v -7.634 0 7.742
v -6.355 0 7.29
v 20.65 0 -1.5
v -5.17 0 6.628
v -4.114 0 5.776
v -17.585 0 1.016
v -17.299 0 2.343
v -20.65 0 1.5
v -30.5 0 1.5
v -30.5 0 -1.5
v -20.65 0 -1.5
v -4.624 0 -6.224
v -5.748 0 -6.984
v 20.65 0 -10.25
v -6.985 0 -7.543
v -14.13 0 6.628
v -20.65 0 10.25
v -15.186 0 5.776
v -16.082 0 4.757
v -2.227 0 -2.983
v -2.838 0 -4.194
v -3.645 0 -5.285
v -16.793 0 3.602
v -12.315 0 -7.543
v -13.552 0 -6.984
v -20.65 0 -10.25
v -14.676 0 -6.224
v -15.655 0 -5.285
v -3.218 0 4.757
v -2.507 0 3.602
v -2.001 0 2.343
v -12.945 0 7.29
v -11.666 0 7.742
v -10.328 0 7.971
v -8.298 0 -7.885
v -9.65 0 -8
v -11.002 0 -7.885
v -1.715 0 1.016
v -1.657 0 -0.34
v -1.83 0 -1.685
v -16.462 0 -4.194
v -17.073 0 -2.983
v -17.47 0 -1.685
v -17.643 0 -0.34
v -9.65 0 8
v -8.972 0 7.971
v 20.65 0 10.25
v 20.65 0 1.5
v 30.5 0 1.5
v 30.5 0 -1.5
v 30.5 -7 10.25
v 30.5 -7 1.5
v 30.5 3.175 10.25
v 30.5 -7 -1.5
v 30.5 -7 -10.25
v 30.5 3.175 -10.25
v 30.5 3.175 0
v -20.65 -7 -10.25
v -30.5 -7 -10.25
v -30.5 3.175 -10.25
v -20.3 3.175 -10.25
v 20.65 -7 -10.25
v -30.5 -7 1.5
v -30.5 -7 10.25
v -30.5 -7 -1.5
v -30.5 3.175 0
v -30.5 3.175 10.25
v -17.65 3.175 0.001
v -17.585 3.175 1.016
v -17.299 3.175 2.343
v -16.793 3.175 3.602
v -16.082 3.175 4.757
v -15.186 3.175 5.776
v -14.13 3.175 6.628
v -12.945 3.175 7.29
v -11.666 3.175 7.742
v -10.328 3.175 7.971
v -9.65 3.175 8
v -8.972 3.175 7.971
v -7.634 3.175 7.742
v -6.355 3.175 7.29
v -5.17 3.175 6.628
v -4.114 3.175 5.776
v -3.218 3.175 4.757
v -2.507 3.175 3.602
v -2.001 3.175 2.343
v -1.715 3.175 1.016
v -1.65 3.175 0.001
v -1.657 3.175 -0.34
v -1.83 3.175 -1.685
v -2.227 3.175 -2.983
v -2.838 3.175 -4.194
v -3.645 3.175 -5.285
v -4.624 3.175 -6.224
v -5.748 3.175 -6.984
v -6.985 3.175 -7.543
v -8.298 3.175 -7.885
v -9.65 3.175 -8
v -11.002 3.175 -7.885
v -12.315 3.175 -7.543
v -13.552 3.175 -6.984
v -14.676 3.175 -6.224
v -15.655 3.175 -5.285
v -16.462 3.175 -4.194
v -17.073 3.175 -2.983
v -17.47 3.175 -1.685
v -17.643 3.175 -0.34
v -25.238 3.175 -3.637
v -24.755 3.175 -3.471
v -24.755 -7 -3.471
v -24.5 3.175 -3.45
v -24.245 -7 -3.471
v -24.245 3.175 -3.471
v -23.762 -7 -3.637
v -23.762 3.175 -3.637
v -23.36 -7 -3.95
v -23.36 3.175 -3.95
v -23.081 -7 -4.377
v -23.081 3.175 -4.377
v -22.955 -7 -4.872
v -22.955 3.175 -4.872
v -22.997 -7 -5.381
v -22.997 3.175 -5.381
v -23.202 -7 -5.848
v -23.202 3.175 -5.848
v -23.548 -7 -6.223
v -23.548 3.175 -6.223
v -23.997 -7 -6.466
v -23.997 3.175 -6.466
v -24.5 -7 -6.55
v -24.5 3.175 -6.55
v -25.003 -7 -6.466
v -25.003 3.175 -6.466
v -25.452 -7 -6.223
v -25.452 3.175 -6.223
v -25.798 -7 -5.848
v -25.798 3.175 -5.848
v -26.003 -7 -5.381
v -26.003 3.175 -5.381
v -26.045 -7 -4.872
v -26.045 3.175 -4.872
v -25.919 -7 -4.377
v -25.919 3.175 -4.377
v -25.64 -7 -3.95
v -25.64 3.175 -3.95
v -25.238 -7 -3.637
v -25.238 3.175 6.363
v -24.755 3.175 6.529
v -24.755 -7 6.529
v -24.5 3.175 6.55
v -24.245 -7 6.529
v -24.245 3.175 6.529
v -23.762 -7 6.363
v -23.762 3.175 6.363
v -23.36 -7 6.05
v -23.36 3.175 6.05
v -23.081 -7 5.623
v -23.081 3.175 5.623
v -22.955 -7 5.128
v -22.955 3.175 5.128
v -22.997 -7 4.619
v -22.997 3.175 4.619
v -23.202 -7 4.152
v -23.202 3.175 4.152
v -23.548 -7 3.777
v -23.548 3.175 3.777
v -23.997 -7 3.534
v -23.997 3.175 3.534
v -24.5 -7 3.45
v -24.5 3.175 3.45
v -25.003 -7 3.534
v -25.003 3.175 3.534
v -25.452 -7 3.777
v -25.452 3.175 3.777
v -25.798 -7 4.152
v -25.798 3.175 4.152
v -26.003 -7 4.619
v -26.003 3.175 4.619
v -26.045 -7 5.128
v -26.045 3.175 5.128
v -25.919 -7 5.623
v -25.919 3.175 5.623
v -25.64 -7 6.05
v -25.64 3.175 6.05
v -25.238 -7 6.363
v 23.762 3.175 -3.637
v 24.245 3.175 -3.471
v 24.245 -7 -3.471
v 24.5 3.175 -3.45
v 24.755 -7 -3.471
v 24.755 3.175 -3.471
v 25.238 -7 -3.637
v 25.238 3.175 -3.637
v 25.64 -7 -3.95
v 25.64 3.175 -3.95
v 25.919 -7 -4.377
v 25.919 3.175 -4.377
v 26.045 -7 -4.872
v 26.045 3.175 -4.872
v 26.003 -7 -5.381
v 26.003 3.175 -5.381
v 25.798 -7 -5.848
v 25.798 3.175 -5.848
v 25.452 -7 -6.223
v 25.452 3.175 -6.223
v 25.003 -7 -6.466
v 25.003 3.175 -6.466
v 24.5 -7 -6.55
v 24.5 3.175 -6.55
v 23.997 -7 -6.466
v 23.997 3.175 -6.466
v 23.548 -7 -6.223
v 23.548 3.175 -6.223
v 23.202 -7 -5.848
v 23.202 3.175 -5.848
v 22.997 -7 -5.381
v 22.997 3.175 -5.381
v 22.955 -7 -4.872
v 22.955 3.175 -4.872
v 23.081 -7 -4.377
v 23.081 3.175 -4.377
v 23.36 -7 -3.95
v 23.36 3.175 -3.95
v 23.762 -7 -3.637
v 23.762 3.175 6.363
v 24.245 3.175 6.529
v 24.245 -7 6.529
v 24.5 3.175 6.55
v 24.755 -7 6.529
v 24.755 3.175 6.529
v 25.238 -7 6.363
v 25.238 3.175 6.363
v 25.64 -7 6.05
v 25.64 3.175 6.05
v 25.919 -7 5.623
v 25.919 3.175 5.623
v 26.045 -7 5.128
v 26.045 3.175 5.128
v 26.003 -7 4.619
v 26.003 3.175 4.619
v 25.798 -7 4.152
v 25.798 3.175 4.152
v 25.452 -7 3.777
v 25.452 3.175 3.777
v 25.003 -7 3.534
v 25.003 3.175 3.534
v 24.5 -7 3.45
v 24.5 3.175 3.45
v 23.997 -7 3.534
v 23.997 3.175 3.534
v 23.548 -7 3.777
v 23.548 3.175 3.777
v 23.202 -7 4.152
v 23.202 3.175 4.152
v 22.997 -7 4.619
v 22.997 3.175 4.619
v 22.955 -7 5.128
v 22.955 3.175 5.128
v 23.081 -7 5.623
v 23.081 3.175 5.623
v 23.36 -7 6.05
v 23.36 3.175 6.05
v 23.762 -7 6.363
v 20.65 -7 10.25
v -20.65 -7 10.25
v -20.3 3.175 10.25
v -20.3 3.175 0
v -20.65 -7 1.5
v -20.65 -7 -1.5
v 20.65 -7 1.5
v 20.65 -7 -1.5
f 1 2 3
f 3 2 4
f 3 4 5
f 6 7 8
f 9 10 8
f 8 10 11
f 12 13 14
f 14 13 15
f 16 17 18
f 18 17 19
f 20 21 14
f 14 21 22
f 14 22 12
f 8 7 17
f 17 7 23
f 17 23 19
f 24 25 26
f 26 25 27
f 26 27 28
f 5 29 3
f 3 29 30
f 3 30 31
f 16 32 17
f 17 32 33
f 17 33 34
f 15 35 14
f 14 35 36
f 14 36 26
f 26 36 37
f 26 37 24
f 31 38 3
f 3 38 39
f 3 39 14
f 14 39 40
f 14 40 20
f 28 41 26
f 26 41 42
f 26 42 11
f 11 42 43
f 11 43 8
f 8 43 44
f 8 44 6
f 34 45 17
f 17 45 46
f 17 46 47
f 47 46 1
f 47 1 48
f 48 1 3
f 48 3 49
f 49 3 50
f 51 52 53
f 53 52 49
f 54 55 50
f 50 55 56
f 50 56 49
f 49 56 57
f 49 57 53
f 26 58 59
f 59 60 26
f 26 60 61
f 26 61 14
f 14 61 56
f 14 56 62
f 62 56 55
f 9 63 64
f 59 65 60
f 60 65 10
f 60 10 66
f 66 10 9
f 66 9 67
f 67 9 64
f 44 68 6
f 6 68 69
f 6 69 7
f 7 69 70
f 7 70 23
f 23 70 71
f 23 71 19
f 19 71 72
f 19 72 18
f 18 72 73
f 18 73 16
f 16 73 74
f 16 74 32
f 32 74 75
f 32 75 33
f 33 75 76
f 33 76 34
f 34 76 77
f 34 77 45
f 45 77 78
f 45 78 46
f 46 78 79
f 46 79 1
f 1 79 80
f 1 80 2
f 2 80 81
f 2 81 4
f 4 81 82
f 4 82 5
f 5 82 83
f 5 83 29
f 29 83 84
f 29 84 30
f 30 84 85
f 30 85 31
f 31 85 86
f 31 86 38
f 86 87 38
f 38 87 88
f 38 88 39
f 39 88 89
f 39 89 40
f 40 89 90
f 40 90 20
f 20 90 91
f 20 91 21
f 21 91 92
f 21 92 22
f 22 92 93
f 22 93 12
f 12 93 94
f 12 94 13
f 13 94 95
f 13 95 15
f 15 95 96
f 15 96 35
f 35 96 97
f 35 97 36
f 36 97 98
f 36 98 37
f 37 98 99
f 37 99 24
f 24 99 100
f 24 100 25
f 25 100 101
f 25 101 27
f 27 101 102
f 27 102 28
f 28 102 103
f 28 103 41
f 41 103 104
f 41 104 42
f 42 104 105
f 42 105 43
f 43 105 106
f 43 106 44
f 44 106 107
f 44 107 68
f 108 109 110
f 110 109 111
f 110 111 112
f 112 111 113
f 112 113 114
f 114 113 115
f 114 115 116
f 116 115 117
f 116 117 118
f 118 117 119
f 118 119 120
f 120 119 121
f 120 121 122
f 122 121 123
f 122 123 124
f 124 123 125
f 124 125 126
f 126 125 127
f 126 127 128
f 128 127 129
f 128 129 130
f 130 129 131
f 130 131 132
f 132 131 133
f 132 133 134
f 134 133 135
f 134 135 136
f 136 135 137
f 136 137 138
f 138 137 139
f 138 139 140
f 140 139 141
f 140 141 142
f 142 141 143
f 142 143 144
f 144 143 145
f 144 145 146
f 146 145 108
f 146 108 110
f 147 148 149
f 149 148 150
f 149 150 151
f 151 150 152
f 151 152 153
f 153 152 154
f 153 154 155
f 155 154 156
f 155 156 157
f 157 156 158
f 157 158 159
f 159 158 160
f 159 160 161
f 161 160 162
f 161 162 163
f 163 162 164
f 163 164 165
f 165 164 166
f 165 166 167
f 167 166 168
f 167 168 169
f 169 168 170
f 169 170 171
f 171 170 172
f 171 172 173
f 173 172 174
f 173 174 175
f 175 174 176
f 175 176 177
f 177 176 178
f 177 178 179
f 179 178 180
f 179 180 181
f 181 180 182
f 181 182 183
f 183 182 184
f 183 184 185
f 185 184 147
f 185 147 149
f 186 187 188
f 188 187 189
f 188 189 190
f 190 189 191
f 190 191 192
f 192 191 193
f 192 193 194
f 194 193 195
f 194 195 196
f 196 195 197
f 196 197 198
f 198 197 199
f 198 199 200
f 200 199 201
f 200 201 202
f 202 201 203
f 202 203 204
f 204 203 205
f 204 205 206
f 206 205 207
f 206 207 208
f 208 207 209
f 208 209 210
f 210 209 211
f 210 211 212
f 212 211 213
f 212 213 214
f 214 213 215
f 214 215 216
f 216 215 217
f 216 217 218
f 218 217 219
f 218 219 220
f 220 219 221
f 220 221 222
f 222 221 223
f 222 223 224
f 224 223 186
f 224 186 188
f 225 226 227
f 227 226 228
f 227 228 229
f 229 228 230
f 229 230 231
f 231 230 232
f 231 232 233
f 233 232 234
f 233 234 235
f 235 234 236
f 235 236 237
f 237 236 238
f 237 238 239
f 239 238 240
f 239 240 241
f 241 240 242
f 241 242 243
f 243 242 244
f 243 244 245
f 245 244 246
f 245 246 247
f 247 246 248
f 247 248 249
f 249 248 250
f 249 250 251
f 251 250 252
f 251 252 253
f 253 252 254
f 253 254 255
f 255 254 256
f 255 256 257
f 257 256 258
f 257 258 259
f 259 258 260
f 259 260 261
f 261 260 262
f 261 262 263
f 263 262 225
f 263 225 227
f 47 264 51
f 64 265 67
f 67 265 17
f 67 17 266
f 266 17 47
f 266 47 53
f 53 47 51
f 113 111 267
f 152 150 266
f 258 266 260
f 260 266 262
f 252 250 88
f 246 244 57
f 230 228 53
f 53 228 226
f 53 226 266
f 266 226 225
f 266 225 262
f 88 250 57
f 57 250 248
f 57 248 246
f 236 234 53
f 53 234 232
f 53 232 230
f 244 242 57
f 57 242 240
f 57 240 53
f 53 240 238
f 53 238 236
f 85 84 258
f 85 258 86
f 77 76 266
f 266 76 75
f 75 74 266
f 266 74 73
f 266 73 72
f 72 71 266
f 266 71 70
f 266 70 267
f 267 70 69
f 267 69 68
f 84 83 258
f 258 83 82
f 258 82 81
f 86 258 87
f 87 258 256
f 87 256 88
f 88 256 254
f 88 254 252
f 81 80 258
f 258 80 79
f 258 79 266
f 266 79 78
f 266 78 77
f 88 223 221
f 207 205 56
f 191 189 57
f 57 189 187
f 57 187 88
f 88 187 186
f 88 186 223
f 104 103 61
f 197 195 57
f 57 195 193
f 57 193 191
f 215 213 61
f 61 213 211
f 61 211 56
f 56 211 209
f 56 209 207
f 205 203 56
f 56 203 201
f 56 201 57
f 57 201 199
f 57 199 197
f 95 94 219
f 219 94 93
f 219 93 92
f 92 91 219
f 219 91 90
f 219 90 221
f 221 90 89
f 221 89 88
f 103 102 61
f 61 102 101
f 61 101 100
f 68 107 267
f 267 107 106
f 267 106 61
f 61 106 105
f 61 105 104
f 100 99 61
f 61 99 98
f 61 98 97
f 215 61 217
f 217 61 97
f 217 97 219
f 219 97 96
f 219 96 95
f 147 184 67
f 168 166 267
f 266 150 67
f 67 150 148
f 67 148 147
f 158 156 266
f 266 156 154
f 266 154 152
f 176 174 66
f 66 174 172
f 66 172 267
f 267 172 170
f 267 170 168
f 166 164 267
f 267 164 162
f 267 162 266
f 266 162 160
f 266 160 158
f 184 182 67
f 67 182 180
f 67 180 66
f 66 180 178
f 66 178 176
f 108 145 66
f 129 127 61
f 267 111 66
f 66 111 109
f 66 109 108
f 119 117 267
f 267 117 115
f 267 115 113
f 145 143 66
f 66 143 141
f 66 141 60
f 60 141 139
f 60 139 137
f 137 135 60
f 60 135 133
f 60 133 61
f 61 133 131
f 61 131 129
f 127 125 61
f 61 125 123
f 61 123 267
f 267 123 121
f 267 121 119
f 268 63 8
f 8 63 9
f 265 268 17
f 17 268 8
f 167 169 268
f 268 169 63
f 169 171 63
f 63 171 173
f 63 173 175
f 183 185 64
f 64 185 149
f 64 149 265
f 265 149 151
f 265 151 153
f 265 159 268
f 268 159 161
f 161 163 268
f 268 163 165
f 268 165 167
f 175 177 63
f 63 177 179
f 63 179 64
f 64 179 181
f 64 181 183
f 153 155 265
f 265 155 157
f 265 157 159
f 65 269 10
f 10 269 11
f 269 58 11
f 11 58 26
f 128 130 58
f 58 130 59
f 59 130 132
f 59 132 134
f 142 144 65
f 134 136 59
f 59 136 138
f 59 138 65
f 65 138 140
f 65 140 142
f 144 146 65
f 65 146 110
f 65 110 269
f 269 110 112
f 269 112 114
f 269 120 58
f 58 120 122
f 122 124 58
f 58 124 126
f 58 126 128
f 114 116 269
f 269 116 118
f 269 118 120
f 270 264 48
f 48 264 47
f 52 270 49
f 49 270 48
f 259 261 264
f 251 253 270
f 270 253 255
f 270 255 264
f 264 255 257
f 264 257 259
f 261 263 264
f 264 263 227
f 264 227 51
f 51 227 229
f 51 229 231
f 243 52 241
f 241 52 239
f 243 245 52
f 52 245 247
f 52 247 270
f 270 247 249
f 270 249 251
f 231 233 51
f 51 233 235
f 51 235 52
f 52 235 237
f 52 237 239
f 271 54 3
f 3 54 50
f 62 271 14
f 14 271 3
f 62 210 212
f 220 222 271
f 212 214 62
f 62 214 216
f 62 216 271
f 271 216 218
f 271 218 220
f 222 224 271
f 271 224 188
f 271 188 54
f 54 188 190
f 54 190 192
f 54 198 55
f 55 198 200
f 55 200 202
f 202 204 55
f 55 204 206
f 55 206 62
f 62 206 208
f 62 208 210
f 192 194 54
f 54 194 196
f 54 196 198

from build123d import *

# Parameters (mm, degrees)
SKETCH2_W           = 61
SKETCH2_H           = 20.5
SKETCH2_R           = 8
SKETCH2_R_2         = 1.55
BOSS_EXTRUDE1_DEPTH = 3.175
SKETCH3_W           = 9.85
SKETCH3_H           = 8.75
SKETCH3_R           = 1.55
BOSS_EXTRUDE2_DEPTH = 7


with BuildPart() as part:
    # Sketch2 → Boss-Extrude1 (new body)
    with BuildSketch(Plane(origin=(0, 0, 0), x_dir=(1, 0, 0), z_dir=(0, 1, 0))):
        Rectangle(SKETCH2_W, SKETCH2_H)
        with Locations((-9.65, 0)):
            Circle(SKETCH2_R, mode=Mode.SUBTRACT)
        with Locations((-24.5, 5)):
            Circle(SKETCH2_R_2, mode=Mode.SUBTRACT)
        with Locations((-24.5, -5)):
            Circle(SKETCH2_R_2, mode=Mode.SUBTRACT)
        with Locations((24.5, 5)):
            Circle(SKETCH2_R_2, mode=Mode.SUBTRACT)
        with Locations((24.5, -5)):
            Circle(SKETCH2_R_2, mode=Mode.SUBTRACT)
    extrude(amount=BOSS_EXTRUDE1_DEPTH)

    # Sketch3 → Boss-Extrude2 (add)
    with BuildSketch(Plane.XZ):
        with Locations((-25.575, 5.875)):
            Rectangle(SKETCH3_W, SKETCH3_H)
        with Locations((-24.5, 5)):
            Circle(SKETCH3_R, mode=Mode.SUBTRACT)
        with Locations((-25.575, -5.875)):
            Rectangle(SKETCH3_W, SKETCH3_H)
        with Locations((-24.5, -5)):
            Circle(SKETCH3_R, mode=Mode.SUBTRACT)
        with Locations((25.575, 5.875)):
            Rectangle(SKETCH3_W, SKETCH3_H)
        with Locations((24.5, 5)):
            Circle(SKETCH3_R, mode=Mode.SUBTRACT)
        with Locations((25.575, -5.875)):
            Rectangle(SKETCH3_W, SKETCH3_H)
        with Locations((24.5, -5)):
            Circle(SKETCH3_R, mode=Mode.SUBTRACT)
    extrude(amount=BOSS_EXTRUDE2_DEPTH)


solid = part.part
